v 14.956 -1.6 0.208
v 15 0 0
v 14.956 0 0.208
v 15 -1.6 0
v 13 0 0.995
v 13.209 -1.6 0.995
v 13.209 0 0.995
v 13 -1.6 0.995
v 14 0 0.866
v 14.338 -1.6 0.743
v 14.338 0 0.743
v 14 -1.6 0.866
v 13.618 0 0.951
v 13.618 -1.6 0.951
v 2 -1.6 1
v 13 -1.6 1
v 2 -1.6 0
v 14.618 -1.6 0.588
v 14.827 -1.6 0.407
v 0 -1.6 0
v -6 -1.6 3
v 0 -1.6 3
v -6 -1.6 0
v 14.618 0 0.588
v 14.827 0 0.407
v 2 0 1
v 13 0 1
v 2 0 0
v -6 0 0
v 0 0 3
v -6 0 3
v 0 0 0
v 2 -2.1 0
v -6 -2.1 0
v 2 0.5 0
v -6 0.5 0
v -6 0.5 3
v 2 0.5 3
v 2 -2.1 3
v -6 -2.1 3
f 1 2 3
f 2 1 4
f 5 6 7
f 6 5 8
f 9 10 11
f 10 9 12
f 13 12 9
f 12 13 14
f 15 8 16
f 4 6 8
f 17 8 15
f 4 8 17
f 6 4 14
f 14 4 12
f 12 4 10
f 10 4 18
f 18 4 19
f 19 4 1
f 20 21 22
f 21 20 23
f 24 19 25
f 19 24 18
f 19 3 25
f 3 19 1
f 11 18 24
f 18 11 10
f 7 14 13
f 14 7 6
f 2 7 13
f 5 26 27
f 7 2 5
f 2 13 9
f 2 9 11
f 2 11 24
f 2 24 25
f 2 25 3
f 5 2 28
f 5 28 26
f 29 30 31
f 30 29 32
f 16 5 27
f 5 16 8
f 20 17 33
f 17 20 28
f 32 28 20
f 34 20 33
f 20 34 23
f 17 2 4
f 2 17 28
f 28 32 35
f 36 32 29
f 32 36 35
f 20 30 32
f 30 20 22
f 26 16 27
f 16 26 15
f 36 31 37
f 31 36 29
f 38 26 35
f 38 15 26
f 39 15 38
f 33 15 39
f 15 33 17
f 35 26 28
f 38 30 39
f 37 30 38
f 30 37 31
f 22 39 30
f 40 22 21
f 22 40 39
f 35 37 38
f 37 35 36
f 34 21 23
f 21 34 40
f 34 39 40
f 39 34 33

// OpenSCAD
rotate([90,0,0]) {

cube([13,1,1.6]);

translate([-6,0,-0.5]) {
    cube([8,3,0.5]);
}
translate([0,1,0]) {
    cube([2,2,1.6]);
}
translate([-6,0,1.6]) {
    cube([8,3,0.5]);
}
translate([13,0,0]) {
    intersection() {
        scale([2/10, 1/10, 1.6]) {
            cylinder(r=10,h=1);
        }
        cube([2,1,1.6]);
    }
}
}
